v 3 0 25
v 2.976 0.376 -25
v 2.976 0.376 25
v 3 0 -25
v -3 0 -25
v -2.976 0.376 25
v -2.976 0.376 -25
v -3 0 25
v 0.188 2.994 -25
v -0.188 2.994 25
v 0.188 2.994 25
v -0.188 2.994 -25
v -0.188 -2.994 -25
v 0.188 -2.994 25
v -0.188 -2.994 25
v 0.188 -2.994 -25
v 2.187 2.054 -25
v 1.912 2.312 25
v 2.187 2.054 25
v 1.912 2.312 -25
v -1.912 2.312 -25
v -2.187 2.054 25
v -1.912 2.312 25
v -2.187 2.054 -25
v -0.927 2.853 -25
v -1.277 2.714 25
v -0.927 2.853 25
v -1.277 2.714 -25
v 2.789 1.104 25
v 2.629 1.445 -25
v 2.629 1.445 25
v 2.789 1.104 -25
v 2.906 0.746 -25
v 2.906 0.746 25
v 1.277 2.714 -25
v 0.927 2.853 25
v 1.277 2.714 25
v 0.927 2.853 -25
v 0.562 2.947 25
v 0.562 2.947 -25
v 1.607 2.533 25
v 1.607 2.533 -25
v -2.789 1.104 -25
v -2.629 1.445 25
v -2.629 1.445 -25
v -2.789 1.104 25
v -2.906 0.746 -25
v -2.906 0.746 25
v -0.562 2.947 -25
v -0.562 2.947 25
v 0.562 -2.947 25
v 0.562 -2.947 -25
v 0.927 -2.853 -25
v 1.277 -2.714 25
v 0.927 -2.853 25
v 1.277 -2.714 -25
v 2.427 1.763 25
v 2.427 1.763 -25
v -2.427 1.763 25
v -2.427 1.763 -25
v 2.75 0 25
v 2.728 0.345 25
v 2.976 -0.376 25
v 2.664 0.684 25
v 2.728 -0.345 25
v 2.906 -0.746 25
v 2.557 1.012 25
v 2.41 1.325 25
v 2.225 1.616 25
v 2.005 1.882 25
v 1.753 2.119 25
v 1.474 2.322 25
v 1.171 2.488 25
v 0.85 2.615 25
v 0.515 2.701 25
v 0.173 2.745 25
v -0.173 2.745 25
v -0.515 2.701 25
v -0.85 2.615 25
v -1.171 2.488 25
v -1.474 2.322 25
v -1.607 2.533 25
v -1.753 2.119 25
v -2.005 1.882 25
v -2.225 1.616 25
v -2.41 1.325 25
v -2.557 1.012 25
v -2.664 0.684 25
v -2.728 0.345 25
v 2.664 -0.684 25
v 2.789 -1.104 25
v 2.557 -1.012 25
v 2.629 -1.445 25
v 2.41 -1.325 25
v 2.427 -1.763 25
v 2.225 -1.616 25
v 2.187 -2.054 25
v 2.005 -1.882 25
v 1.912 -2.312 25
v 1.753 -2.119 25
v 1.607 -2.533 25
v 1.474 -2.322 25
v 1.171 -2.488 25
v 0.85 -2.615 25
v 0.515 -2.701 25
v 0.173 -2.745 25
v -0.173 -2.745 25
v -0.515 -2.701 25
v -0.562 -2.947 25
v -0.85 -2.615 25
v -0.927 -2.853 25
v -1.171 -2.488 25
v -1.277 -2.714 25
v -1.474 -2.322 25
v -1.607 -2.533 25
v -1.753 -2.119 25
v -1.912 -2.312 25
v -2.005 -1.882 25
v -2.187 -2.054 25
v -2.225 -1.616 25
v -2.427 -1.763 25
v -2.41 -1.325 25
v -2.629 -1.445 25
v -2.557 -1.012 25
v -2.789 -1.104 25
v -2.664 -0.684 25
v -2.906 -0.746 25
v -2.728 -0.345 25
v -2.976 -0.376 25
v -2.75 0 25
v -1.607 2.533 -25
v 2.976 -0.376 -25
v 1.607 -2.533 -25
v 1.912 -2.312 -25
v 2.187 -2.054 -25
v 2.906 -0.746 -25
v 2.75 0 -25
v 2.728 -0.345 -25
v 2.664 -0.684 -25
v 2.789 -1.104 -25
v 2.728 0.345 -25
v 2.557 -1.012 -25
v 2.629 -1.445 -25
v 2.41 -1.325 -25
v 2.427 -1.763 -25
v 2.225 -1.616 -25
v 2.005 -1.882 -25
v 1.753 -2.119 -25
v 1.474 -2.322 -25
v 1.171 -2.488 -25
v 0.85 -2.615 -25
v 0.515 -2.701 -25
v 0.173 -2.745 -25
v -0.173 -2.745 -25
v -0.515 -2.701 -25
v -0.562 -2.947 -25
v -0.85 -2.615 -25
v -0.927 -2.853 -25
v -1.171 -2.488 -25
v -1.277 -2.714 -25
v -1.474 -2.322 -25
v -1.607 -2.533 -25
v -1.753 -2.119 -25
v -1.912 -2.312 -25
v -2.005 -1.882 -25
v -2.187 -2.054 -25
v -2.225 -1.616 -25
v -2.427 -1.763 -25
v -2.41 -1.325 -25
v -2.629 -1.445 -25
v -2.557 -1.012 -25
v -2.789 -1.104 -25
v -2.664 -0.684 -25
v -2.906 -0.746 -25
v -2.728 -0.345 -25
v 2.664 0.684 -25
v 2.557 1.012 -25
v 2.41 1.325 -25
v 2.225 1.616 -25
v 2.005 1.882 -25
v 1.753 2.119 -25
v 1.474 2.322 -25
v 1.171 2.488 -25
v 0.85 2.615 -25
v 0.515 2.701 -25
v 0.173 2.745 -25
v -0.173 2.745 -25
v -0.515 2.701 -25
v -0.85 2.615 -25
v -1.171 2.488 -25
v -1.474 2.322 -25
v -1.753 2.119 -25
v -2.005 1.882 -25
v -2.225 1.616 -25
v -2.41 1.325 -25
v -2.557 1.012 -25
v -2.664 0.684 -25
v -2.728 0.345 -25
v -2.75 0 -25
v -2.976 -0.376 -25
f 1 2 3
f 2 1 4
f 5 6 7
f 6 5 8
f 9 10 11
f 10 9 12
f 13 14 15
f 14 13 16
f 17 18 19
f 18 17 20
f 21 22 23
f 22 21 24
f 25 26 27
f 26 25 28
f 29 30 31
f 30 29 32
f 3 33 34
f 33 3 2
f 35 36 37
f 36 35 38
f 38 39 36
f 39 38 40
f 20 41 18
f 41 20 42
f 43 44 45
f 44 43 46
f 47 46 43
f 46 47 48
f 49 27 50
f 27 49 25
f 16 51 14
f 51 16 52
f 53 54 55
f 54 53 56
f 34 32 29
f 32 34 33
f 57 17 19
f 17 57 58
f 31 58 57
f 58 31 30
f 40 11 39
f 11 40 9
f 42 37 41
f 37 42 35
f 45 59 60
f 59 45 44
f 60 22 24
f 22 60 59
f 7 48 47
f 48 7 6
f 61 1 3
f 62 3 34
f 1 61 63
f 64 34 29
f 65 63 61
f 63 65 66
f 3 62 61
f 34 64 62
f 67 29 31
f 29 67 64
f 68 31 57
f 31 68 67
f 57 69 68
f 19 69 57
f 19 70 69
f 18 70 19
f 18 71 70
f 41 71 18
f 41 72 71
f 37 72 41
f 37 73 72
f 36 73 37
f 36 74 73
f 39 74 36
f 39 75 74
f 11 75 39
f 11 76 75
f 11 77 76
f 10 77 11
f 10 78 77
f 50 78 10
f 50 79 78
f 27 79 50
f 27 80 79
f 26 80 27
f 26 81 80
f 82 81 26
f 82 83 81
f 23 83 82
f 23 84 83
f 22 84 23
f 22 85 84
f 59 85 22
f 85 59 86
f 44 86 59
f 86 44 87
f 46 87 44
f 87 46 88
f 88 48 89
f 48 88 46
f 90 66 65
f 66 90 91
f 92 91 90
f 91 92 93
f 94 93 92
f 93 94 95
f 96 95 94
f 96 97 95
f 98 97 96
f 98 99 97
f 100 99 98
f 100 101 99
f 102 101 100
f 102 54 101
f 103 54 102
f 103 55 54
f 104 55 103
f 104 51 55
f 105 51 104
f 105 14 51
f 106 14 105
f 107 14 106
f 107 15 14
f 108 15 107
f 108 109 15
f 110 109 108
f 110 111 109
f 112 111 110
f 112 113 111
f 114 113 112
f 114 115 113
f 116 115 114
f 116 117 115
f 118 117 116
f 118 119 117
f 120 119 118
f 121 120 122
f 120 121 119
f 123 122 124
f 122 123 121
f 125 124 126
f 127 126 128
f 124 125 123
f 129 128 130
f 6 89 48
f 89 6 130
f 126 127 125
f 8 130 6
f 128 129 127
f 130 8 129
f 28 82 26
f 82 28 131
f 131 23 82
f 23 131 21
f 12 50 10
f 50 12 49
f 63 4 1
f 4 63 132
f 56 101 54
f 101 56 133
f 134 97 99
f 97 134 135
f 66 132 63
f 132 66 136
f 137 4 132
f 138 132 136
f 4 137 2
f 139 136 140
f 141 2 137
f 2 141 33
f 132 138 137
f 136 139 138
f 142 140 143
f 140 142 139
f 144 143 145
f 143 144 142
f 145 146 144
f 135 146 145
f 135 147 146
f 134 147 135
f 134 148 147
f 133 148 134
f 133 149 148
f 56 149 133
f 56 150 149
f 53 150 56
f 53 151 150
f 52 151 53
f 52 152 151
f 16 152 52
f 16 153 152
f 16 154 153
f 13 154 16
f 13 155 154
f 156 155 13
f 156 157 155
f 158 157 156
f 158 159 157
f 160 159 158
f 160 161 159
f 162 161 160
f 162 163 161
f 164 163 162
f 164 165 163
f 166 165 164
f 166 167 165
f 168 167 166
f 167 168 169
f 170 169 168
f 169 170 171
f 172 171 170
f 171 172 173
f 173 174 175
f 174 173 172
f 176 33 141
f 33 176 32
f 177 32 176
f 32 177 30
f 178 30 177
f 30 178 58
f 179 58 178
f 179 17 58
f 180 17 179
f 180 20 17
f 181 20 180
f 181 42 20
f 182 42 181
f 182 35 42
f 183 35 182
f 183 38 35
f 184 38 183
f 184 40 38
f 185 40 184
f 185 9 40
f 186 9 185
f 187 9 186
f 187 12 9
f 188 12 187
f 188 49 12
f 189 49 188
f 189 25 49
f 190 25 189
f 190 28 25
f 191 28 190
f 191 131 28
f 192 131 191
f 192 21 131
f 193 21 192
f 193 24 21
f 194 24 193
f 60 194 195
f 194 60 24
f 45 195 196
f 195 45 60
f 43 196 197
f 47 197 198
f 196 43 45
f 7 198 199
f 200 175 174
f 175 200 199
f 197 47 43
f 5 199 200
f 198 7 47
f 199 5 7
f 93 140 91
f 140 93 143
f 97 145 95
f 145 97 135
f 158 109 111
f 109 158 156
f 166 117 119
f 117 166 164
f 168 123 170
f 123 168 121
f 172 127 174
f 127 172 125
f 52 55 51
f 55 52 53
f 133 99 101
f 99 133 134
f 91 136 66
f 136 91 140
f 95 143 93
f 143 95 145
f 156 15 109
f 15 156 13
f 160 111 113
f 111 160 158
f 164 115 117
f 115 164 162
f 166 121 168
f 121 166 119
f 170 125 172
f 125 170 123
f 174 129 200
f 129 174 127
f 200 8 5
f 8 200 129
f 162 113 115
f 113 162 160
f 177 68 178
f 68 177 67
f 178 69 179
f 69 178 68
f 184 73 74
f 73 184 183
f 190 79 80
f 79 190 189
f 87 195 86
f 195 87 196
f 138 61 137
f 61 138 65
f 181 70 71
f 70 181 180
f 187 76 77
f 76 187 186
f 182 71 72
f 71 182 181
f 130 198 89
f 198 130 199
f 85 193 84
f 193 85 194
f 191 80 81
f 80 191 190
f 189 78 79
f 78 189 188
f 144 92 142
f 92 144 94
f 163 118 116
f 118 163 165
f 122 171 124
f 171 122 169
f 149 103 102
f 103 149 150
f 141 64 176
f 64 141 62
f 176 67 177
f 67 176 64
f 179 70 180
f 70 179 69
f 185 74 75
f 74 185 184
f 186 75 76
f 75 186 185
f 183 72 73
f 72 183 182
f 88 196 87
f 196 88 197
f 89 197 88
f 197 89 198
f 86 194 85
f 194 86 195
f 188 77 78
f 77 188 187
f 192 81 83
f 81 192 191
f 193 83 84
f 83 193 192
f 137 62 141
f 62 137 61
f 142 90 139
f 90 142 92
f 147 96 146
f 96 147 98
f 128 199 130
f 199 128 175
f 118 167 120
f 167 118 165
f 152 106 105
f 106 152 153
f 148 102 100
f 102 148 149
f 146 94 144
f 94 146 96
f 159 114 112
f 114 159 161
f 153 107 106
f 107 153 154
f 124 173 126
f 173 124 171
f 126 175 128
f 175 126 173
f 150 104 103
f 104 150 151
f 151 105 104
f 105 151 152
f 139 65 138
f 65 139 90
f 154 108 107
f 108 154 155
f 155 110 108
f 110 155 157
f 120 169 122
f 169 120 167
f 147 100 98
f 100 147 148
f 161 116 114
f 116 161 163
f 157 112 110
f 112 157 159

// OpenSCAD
$fn = 50;


difference() {
	union() {
		translate(v = [0, 0, -25.0000000000]) {
			cylinder(h = 50, r = 3.0000000000);
		}
	}
	union() {
		translate(v = [0, 0, -100.0000000000]) {
			cylinder(h = 200, r = 2.7500000000);
		}
	}
}
